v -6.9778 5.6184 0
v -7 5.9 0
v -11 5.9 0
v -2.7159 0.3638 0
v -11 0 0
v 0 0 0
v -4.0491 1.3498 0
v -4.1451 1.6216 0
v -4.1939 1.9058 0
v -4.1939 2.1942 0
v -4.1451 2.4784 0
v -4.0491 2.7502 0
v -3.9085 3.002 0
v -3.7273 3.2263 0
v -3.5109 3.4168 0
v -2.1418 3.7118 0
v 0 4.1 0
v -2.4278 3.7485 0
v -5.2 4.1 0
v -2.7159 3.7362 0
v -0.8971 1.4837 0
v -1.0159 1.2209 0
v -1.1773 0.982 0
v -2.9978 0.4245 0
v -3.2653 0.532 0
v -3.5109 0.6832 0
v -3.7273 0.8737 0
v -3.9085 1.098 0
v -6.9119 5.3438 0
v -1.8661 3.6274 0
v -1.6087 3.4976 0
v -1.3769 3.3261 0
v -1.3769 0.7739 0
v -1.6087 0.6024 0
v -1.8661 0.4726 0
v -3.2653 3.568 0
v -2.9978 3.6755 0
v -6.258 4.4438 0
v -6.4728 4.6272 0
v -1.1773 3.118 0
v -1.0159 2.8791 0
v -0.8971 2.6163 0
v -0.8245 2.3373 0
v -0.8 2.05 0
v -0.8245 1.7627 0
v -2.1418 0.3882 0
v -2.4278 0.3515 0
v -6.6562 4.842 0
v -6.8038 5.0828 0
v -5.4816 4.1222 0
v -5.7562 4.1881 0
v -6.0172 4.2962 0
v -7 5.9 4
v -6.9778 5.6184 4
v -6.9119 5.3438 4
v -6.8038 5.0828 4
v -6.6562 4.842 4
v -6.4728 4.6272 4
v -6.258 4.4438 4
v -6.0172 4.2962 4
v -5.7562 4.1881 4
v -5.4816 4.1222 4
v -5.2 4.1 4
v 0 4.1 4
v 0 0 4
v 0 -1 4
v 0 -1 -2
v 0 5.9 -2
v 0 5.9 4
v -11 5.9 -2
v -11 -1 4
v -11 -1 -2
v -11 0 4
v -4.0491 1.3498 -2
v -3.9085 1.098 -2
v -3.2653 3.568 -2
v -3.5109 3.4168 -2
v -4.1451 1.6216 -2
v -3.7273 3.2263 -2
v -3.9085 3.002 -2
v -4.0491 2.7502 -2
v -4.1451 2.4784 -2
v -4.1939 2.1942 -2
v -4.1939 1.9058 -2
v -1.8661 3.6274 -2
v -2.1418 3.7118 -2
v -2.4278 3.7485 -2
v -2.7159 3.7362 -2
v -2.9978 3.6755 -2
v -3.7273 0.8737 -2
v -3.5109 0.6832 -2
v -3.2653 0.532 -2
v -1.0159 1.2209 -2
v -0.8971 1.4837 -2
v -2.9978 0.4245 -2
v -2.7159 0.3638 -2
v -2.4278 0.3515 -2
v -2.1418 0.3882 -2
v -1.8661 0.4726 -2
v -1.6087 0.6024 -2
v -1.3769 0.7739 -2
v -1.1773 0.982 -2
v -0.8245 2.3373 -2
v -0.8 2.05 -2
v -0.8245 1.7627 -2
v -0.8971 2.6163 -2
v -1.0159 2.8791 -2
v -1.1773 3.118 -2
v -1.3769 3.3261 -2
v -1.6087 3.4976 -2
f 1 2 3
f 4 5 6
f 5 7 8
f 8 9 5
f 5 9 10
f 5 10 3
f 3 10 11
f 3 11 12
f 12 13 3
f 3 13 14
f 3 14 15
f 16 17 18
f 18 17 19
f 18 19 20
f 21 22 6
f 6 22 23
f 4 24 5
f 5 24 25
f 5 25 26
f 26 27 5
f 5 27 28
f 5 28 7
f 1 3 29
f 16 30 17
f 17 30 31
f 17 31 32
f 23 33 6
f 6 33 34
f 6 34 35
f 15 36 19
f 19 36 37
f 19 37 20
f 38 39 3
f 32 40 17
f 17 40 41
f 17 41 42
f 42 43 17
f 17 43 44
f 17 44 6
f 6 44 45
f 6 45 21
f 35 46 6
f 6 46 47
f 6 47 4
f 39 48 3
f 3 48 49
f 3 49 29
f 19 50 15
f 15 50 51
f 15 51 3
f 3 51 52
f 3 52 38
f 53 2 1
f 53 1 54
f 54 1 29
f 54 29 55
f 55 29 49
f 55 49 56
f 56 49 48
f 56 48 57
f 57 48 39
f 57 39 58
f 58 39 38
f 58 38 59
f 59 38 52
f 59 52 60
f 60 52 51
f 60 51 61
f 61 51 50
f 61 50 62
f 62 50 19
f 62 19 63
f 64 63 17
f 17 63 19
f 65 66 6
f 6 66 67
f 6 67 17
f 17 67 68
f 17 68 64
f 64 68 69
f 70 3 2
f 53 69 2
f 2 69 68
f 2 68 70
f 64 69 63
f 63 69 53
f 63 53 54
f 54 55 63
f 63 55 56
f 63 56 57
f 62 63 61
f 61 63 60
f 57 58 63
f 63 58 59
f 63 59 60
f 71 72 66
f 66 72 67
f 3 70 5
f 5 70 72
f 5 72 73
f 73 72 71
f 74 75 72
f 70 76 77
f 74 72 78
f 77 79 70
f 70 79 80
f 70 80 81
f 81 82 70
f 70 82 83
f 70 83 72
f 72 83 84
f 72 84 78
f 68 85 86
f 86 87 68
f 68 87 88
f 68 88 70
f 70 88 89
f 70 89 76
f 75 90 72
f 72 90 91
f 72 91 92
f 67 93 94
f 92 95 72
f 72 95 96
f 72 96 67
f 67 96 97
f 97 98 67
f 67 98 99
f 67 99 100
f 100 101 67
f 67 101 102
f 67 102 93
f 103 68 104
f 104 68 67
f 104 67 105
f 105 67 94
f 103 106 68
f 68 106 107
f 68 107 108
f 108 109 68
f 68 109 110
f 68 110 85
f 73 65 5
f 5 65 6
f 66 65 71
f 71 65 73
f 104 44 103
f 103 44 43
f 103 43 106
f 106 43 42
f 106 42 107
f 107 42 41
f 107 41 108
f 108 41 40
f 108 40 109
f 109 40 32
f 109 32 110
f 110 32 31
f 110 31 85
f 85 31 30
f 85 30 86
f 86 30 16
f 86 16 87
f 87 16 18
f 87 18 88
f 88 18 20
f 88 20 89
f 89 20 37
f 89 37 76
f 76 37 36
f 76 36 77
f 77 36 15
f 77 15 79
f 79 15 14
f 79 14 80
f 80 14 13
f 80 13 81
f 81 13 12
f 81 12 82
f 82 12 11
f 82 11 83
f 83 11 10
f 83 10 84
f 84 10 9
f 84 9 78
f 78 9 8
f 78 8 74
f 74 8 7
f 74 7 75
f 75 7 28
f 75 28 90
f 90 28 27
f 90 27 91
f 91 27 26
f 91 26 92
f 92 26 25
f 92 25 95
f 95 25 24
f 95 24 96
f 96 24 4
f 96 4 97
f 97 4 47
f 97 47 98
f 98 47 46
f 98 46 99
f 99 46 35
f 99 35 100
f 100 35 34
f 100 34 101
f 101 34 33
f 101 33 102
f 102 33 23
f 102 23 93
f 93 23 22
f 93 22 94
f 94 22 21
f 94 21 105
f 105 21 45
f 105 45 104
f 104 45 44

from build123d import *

# Parameters (mm, degrees)
BOSS_EXTRUDE1_DEPTH   = 4
SKETCH2_W             = 11
SKETCH2_H             = 1
BOSS_EXTRUDE1_2_DEPTH = 4
SKETCH3_W             = 11
SKETCH3_H             = 6.9
BOSS_EXTRUDE2_DEPTH   = 2
SKETCH5_R             = 1.7
CUT_EXTRUDE1_DEPTH    = 2


with BuildPart() as part:
    # Sketch2 → Boss-Extrude1 (new body)
    with BuildSketch(Plane.XY):
        with BuildLine():
            Line((-5, 4.1), (0, 4.1))
            Line((0, 4.1), (0, 5.1))
            Line((0, 5.1), (0, 5.9))
            Line((0, 5.9), (-5, 5.9))
            Line((-5, 5.9), (-7, 5.9))
            ThreePointArc((-7, 5.9), (-6.472792206, 4.627207794), (-5.2, 4.1))
            Line((-5.2, 4.1), (-5, 4.1))
        make_face()
    extrude(amount=BOSS_EXTRUDE1_DEPTH)



with BuildPart() as body_2:
    # Sketch2 → Boss-Extrude1 2 (new body)
    with BuildSketch(Plane.XY):
        with Locations((-5.5, -0.5)):
            Rectangle(SKETCH2_W, SKETCH2_H)
    extrude(amount=BOSS_EXTRUDE1_2_DEPTH)


with BuildPart() as part_1:
    add(part.part)

    add(body_2.part)  # Boss-Extrude2 merges body 2
    # Sketch3 → Boss-Extrude2 (add)
    with BuildSketch(Plane(origin=(0, 0, 0), x_dir=(-1, 0, 0), z_dir=(0, 0, -1))):
        with Locations((5.5, 2.45)):
            Rectangle(SKETCH3_W, SKETCH3_H)
    extrude(amount=BOSS_EXTRUDE2_DEPTH)

    # Sketch5 → Cut-Extrude1 (cut)
    with BuildSketch(Plane.XY):
        with Locations((-2.5, 2.05)):
            Circle(SKETCH5_R)
    extrude(amount=-CUT_EXTRUDE1_DEPTH, mode=Mode.SUBTRACT)


solid = part_1.part
